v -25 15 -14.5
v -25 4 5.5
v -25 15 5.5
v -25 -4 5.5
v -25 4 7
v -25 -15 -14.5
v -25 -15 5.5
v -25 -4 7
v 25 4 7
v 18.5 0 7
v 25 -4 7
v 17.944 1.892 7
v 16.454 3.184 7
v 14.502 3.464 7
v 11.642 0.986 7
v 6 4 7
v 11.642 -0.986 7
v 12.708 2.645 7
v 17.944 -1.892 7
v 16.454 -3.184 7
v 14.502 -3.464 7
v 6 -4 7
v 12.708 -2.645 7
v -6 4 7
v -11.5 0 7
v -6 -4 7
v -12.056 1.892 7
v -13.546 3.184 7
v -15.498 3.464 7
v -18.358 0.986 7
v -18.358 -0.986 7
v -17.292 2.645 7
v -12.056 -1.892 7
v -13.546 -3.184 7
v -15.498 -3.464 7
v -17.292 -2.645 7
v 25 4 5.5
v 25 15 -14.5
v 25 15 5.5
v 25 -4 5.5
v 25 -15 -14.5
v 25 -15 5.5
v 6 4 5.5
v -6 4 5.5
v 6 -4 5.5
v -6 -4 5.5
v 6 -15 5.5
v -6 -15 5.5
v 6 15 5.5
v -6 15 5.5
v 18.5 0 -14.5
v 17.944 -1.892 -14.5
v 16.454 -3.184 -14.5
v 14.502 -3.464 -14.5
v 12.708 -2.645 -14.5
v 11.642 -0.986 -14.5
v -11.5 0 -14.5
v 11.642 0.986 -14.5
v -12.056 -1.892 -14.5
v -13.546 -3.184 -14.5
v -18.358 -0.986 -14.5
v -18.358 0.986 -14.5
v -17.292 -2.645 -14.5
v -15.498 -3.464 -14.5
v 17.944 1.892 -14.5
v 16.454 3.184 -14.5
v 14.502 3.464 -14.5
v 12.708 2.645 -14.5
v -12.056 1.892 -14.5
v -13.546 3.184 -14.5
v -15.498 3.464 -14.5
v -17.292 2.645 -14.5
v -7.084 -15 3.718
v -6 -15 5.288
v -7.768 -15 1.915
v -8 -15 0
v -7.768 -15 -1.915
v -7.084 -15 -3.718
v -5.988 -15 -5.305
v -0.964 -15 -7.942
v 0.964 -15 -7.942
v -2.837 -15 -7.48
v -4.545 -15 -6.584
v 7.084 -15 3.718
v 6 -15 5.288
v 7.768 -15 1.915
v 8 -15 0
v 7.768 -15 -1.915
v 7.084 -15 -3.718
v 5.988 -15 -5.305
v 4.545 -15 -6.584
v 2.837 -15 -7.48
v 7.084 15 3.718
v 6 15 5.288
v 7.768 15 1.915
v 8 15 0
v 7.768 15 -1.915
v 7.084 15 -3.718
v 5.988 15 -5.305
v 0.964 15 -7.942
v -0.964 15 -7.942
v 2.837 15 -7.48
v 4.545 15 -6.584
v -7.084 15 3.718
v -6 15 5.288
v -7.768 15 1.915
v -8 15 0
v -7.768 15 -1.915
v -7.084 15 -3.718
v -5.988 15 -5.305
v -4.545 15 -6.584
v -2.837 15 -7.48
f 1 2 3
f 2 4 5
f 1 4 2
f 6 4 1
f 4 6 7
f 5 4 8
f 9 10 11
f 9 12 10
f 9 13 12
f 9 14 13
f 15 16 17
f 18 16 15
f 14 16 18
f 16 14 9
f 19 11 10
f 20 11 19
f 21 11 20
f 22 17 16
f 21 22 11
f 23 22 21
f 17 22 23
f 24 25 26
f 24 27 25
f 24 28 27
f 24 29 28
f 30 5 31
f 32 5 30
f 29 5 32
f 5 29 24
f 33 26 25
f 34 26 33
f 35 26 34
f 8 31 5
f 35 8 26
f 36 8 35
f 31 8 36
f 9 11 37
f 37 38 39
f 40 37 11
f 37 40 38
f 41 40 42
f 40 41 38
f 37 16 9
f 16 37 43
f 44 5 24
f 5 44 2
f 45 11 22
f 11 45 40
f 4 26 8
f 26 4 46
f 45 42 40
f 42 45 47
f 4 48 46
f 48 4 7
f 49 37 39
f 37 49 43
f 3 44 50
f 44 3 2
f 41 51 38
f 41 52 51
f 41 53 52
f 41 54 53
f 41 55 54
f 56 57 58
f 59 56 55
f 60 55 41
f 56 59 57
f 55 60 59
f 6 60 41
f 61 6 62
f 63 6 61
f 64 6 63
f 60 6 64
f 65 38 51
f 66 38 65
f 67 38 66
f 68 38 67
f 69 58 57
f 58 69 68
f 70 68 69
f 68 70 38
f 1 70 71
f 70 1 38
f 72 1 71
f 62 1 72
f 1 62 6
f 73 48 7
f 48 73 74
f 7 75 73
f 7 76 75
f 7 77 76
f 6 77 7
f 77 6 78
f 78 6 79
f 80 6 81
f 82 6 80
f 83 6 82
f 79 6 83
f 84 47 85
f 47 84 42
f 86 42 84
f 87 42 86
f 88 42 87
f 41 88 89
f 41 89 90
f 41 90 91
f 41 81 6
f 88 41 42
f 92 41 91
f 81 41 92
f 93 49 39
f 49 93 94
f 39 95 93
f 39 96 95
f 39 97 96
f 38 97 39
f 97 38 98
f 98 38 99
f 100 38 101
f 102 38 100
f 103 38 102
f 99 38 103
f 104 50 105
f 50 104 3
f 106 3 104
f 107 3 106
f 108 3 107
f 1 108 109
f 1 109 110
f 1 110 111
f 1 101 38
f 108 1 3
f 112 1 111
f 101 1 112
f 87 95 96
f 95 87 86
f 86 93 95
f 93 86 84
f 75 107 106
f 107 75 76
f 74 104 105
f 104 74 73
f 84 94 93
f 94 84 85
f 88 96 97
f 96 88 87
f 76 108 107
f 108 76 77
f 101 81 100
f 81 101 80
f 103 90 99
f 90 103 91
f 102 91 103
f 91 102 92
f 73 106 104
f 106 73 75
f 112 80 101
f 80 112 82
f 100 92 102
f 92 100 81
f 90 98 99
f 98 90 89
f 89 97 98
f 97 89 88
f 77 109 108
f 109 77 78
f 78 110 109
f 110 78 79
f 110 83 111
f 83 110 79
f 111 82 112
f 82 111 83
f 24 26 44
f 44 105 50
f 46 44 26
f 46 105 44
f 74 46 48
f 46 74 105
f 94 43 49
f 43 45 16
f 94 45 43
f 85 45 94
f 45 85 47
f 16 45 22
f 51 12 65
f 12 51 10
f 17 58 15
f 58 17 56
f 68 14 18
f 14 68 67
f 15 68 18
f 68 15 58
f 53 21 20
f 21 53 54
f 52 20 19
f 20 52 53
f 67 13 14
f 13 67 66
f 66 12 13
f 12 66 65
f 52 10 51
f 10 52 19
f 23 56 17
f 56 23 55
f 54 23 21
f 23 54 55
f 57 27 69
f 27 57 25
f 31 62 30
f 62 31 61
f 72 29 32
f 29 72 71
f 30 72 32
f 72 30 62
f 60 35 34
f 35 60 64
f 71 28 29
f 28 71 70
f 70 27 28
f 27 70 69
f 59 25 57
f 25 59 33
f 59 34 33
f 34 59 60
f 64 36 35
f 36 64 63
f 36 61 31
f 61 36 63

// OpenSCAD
m6_dira  = 7;
profil_drazka = 8;

module drzak_kola(){
    difference(){
        union(){
            translate([0,0,6])
                cube([50,profil_drazka,2],center = true);
            translate([0,0,-2-2.5])
                cube([50,30,20],center = true);
        }    
        rotate([90,0,0])
            cylinder(d=16,h=32,center=true);
        translate([0,0,10])
                cube([12,30,20],center = true);
        translate([15,0,0])
            cylinder(d=m6_dira,h=30,center = true);
        translate([-15,0,0])
            cylinder(d=m6_dira,h=30,center = true);
    
    }    
}

drzak_kola();
